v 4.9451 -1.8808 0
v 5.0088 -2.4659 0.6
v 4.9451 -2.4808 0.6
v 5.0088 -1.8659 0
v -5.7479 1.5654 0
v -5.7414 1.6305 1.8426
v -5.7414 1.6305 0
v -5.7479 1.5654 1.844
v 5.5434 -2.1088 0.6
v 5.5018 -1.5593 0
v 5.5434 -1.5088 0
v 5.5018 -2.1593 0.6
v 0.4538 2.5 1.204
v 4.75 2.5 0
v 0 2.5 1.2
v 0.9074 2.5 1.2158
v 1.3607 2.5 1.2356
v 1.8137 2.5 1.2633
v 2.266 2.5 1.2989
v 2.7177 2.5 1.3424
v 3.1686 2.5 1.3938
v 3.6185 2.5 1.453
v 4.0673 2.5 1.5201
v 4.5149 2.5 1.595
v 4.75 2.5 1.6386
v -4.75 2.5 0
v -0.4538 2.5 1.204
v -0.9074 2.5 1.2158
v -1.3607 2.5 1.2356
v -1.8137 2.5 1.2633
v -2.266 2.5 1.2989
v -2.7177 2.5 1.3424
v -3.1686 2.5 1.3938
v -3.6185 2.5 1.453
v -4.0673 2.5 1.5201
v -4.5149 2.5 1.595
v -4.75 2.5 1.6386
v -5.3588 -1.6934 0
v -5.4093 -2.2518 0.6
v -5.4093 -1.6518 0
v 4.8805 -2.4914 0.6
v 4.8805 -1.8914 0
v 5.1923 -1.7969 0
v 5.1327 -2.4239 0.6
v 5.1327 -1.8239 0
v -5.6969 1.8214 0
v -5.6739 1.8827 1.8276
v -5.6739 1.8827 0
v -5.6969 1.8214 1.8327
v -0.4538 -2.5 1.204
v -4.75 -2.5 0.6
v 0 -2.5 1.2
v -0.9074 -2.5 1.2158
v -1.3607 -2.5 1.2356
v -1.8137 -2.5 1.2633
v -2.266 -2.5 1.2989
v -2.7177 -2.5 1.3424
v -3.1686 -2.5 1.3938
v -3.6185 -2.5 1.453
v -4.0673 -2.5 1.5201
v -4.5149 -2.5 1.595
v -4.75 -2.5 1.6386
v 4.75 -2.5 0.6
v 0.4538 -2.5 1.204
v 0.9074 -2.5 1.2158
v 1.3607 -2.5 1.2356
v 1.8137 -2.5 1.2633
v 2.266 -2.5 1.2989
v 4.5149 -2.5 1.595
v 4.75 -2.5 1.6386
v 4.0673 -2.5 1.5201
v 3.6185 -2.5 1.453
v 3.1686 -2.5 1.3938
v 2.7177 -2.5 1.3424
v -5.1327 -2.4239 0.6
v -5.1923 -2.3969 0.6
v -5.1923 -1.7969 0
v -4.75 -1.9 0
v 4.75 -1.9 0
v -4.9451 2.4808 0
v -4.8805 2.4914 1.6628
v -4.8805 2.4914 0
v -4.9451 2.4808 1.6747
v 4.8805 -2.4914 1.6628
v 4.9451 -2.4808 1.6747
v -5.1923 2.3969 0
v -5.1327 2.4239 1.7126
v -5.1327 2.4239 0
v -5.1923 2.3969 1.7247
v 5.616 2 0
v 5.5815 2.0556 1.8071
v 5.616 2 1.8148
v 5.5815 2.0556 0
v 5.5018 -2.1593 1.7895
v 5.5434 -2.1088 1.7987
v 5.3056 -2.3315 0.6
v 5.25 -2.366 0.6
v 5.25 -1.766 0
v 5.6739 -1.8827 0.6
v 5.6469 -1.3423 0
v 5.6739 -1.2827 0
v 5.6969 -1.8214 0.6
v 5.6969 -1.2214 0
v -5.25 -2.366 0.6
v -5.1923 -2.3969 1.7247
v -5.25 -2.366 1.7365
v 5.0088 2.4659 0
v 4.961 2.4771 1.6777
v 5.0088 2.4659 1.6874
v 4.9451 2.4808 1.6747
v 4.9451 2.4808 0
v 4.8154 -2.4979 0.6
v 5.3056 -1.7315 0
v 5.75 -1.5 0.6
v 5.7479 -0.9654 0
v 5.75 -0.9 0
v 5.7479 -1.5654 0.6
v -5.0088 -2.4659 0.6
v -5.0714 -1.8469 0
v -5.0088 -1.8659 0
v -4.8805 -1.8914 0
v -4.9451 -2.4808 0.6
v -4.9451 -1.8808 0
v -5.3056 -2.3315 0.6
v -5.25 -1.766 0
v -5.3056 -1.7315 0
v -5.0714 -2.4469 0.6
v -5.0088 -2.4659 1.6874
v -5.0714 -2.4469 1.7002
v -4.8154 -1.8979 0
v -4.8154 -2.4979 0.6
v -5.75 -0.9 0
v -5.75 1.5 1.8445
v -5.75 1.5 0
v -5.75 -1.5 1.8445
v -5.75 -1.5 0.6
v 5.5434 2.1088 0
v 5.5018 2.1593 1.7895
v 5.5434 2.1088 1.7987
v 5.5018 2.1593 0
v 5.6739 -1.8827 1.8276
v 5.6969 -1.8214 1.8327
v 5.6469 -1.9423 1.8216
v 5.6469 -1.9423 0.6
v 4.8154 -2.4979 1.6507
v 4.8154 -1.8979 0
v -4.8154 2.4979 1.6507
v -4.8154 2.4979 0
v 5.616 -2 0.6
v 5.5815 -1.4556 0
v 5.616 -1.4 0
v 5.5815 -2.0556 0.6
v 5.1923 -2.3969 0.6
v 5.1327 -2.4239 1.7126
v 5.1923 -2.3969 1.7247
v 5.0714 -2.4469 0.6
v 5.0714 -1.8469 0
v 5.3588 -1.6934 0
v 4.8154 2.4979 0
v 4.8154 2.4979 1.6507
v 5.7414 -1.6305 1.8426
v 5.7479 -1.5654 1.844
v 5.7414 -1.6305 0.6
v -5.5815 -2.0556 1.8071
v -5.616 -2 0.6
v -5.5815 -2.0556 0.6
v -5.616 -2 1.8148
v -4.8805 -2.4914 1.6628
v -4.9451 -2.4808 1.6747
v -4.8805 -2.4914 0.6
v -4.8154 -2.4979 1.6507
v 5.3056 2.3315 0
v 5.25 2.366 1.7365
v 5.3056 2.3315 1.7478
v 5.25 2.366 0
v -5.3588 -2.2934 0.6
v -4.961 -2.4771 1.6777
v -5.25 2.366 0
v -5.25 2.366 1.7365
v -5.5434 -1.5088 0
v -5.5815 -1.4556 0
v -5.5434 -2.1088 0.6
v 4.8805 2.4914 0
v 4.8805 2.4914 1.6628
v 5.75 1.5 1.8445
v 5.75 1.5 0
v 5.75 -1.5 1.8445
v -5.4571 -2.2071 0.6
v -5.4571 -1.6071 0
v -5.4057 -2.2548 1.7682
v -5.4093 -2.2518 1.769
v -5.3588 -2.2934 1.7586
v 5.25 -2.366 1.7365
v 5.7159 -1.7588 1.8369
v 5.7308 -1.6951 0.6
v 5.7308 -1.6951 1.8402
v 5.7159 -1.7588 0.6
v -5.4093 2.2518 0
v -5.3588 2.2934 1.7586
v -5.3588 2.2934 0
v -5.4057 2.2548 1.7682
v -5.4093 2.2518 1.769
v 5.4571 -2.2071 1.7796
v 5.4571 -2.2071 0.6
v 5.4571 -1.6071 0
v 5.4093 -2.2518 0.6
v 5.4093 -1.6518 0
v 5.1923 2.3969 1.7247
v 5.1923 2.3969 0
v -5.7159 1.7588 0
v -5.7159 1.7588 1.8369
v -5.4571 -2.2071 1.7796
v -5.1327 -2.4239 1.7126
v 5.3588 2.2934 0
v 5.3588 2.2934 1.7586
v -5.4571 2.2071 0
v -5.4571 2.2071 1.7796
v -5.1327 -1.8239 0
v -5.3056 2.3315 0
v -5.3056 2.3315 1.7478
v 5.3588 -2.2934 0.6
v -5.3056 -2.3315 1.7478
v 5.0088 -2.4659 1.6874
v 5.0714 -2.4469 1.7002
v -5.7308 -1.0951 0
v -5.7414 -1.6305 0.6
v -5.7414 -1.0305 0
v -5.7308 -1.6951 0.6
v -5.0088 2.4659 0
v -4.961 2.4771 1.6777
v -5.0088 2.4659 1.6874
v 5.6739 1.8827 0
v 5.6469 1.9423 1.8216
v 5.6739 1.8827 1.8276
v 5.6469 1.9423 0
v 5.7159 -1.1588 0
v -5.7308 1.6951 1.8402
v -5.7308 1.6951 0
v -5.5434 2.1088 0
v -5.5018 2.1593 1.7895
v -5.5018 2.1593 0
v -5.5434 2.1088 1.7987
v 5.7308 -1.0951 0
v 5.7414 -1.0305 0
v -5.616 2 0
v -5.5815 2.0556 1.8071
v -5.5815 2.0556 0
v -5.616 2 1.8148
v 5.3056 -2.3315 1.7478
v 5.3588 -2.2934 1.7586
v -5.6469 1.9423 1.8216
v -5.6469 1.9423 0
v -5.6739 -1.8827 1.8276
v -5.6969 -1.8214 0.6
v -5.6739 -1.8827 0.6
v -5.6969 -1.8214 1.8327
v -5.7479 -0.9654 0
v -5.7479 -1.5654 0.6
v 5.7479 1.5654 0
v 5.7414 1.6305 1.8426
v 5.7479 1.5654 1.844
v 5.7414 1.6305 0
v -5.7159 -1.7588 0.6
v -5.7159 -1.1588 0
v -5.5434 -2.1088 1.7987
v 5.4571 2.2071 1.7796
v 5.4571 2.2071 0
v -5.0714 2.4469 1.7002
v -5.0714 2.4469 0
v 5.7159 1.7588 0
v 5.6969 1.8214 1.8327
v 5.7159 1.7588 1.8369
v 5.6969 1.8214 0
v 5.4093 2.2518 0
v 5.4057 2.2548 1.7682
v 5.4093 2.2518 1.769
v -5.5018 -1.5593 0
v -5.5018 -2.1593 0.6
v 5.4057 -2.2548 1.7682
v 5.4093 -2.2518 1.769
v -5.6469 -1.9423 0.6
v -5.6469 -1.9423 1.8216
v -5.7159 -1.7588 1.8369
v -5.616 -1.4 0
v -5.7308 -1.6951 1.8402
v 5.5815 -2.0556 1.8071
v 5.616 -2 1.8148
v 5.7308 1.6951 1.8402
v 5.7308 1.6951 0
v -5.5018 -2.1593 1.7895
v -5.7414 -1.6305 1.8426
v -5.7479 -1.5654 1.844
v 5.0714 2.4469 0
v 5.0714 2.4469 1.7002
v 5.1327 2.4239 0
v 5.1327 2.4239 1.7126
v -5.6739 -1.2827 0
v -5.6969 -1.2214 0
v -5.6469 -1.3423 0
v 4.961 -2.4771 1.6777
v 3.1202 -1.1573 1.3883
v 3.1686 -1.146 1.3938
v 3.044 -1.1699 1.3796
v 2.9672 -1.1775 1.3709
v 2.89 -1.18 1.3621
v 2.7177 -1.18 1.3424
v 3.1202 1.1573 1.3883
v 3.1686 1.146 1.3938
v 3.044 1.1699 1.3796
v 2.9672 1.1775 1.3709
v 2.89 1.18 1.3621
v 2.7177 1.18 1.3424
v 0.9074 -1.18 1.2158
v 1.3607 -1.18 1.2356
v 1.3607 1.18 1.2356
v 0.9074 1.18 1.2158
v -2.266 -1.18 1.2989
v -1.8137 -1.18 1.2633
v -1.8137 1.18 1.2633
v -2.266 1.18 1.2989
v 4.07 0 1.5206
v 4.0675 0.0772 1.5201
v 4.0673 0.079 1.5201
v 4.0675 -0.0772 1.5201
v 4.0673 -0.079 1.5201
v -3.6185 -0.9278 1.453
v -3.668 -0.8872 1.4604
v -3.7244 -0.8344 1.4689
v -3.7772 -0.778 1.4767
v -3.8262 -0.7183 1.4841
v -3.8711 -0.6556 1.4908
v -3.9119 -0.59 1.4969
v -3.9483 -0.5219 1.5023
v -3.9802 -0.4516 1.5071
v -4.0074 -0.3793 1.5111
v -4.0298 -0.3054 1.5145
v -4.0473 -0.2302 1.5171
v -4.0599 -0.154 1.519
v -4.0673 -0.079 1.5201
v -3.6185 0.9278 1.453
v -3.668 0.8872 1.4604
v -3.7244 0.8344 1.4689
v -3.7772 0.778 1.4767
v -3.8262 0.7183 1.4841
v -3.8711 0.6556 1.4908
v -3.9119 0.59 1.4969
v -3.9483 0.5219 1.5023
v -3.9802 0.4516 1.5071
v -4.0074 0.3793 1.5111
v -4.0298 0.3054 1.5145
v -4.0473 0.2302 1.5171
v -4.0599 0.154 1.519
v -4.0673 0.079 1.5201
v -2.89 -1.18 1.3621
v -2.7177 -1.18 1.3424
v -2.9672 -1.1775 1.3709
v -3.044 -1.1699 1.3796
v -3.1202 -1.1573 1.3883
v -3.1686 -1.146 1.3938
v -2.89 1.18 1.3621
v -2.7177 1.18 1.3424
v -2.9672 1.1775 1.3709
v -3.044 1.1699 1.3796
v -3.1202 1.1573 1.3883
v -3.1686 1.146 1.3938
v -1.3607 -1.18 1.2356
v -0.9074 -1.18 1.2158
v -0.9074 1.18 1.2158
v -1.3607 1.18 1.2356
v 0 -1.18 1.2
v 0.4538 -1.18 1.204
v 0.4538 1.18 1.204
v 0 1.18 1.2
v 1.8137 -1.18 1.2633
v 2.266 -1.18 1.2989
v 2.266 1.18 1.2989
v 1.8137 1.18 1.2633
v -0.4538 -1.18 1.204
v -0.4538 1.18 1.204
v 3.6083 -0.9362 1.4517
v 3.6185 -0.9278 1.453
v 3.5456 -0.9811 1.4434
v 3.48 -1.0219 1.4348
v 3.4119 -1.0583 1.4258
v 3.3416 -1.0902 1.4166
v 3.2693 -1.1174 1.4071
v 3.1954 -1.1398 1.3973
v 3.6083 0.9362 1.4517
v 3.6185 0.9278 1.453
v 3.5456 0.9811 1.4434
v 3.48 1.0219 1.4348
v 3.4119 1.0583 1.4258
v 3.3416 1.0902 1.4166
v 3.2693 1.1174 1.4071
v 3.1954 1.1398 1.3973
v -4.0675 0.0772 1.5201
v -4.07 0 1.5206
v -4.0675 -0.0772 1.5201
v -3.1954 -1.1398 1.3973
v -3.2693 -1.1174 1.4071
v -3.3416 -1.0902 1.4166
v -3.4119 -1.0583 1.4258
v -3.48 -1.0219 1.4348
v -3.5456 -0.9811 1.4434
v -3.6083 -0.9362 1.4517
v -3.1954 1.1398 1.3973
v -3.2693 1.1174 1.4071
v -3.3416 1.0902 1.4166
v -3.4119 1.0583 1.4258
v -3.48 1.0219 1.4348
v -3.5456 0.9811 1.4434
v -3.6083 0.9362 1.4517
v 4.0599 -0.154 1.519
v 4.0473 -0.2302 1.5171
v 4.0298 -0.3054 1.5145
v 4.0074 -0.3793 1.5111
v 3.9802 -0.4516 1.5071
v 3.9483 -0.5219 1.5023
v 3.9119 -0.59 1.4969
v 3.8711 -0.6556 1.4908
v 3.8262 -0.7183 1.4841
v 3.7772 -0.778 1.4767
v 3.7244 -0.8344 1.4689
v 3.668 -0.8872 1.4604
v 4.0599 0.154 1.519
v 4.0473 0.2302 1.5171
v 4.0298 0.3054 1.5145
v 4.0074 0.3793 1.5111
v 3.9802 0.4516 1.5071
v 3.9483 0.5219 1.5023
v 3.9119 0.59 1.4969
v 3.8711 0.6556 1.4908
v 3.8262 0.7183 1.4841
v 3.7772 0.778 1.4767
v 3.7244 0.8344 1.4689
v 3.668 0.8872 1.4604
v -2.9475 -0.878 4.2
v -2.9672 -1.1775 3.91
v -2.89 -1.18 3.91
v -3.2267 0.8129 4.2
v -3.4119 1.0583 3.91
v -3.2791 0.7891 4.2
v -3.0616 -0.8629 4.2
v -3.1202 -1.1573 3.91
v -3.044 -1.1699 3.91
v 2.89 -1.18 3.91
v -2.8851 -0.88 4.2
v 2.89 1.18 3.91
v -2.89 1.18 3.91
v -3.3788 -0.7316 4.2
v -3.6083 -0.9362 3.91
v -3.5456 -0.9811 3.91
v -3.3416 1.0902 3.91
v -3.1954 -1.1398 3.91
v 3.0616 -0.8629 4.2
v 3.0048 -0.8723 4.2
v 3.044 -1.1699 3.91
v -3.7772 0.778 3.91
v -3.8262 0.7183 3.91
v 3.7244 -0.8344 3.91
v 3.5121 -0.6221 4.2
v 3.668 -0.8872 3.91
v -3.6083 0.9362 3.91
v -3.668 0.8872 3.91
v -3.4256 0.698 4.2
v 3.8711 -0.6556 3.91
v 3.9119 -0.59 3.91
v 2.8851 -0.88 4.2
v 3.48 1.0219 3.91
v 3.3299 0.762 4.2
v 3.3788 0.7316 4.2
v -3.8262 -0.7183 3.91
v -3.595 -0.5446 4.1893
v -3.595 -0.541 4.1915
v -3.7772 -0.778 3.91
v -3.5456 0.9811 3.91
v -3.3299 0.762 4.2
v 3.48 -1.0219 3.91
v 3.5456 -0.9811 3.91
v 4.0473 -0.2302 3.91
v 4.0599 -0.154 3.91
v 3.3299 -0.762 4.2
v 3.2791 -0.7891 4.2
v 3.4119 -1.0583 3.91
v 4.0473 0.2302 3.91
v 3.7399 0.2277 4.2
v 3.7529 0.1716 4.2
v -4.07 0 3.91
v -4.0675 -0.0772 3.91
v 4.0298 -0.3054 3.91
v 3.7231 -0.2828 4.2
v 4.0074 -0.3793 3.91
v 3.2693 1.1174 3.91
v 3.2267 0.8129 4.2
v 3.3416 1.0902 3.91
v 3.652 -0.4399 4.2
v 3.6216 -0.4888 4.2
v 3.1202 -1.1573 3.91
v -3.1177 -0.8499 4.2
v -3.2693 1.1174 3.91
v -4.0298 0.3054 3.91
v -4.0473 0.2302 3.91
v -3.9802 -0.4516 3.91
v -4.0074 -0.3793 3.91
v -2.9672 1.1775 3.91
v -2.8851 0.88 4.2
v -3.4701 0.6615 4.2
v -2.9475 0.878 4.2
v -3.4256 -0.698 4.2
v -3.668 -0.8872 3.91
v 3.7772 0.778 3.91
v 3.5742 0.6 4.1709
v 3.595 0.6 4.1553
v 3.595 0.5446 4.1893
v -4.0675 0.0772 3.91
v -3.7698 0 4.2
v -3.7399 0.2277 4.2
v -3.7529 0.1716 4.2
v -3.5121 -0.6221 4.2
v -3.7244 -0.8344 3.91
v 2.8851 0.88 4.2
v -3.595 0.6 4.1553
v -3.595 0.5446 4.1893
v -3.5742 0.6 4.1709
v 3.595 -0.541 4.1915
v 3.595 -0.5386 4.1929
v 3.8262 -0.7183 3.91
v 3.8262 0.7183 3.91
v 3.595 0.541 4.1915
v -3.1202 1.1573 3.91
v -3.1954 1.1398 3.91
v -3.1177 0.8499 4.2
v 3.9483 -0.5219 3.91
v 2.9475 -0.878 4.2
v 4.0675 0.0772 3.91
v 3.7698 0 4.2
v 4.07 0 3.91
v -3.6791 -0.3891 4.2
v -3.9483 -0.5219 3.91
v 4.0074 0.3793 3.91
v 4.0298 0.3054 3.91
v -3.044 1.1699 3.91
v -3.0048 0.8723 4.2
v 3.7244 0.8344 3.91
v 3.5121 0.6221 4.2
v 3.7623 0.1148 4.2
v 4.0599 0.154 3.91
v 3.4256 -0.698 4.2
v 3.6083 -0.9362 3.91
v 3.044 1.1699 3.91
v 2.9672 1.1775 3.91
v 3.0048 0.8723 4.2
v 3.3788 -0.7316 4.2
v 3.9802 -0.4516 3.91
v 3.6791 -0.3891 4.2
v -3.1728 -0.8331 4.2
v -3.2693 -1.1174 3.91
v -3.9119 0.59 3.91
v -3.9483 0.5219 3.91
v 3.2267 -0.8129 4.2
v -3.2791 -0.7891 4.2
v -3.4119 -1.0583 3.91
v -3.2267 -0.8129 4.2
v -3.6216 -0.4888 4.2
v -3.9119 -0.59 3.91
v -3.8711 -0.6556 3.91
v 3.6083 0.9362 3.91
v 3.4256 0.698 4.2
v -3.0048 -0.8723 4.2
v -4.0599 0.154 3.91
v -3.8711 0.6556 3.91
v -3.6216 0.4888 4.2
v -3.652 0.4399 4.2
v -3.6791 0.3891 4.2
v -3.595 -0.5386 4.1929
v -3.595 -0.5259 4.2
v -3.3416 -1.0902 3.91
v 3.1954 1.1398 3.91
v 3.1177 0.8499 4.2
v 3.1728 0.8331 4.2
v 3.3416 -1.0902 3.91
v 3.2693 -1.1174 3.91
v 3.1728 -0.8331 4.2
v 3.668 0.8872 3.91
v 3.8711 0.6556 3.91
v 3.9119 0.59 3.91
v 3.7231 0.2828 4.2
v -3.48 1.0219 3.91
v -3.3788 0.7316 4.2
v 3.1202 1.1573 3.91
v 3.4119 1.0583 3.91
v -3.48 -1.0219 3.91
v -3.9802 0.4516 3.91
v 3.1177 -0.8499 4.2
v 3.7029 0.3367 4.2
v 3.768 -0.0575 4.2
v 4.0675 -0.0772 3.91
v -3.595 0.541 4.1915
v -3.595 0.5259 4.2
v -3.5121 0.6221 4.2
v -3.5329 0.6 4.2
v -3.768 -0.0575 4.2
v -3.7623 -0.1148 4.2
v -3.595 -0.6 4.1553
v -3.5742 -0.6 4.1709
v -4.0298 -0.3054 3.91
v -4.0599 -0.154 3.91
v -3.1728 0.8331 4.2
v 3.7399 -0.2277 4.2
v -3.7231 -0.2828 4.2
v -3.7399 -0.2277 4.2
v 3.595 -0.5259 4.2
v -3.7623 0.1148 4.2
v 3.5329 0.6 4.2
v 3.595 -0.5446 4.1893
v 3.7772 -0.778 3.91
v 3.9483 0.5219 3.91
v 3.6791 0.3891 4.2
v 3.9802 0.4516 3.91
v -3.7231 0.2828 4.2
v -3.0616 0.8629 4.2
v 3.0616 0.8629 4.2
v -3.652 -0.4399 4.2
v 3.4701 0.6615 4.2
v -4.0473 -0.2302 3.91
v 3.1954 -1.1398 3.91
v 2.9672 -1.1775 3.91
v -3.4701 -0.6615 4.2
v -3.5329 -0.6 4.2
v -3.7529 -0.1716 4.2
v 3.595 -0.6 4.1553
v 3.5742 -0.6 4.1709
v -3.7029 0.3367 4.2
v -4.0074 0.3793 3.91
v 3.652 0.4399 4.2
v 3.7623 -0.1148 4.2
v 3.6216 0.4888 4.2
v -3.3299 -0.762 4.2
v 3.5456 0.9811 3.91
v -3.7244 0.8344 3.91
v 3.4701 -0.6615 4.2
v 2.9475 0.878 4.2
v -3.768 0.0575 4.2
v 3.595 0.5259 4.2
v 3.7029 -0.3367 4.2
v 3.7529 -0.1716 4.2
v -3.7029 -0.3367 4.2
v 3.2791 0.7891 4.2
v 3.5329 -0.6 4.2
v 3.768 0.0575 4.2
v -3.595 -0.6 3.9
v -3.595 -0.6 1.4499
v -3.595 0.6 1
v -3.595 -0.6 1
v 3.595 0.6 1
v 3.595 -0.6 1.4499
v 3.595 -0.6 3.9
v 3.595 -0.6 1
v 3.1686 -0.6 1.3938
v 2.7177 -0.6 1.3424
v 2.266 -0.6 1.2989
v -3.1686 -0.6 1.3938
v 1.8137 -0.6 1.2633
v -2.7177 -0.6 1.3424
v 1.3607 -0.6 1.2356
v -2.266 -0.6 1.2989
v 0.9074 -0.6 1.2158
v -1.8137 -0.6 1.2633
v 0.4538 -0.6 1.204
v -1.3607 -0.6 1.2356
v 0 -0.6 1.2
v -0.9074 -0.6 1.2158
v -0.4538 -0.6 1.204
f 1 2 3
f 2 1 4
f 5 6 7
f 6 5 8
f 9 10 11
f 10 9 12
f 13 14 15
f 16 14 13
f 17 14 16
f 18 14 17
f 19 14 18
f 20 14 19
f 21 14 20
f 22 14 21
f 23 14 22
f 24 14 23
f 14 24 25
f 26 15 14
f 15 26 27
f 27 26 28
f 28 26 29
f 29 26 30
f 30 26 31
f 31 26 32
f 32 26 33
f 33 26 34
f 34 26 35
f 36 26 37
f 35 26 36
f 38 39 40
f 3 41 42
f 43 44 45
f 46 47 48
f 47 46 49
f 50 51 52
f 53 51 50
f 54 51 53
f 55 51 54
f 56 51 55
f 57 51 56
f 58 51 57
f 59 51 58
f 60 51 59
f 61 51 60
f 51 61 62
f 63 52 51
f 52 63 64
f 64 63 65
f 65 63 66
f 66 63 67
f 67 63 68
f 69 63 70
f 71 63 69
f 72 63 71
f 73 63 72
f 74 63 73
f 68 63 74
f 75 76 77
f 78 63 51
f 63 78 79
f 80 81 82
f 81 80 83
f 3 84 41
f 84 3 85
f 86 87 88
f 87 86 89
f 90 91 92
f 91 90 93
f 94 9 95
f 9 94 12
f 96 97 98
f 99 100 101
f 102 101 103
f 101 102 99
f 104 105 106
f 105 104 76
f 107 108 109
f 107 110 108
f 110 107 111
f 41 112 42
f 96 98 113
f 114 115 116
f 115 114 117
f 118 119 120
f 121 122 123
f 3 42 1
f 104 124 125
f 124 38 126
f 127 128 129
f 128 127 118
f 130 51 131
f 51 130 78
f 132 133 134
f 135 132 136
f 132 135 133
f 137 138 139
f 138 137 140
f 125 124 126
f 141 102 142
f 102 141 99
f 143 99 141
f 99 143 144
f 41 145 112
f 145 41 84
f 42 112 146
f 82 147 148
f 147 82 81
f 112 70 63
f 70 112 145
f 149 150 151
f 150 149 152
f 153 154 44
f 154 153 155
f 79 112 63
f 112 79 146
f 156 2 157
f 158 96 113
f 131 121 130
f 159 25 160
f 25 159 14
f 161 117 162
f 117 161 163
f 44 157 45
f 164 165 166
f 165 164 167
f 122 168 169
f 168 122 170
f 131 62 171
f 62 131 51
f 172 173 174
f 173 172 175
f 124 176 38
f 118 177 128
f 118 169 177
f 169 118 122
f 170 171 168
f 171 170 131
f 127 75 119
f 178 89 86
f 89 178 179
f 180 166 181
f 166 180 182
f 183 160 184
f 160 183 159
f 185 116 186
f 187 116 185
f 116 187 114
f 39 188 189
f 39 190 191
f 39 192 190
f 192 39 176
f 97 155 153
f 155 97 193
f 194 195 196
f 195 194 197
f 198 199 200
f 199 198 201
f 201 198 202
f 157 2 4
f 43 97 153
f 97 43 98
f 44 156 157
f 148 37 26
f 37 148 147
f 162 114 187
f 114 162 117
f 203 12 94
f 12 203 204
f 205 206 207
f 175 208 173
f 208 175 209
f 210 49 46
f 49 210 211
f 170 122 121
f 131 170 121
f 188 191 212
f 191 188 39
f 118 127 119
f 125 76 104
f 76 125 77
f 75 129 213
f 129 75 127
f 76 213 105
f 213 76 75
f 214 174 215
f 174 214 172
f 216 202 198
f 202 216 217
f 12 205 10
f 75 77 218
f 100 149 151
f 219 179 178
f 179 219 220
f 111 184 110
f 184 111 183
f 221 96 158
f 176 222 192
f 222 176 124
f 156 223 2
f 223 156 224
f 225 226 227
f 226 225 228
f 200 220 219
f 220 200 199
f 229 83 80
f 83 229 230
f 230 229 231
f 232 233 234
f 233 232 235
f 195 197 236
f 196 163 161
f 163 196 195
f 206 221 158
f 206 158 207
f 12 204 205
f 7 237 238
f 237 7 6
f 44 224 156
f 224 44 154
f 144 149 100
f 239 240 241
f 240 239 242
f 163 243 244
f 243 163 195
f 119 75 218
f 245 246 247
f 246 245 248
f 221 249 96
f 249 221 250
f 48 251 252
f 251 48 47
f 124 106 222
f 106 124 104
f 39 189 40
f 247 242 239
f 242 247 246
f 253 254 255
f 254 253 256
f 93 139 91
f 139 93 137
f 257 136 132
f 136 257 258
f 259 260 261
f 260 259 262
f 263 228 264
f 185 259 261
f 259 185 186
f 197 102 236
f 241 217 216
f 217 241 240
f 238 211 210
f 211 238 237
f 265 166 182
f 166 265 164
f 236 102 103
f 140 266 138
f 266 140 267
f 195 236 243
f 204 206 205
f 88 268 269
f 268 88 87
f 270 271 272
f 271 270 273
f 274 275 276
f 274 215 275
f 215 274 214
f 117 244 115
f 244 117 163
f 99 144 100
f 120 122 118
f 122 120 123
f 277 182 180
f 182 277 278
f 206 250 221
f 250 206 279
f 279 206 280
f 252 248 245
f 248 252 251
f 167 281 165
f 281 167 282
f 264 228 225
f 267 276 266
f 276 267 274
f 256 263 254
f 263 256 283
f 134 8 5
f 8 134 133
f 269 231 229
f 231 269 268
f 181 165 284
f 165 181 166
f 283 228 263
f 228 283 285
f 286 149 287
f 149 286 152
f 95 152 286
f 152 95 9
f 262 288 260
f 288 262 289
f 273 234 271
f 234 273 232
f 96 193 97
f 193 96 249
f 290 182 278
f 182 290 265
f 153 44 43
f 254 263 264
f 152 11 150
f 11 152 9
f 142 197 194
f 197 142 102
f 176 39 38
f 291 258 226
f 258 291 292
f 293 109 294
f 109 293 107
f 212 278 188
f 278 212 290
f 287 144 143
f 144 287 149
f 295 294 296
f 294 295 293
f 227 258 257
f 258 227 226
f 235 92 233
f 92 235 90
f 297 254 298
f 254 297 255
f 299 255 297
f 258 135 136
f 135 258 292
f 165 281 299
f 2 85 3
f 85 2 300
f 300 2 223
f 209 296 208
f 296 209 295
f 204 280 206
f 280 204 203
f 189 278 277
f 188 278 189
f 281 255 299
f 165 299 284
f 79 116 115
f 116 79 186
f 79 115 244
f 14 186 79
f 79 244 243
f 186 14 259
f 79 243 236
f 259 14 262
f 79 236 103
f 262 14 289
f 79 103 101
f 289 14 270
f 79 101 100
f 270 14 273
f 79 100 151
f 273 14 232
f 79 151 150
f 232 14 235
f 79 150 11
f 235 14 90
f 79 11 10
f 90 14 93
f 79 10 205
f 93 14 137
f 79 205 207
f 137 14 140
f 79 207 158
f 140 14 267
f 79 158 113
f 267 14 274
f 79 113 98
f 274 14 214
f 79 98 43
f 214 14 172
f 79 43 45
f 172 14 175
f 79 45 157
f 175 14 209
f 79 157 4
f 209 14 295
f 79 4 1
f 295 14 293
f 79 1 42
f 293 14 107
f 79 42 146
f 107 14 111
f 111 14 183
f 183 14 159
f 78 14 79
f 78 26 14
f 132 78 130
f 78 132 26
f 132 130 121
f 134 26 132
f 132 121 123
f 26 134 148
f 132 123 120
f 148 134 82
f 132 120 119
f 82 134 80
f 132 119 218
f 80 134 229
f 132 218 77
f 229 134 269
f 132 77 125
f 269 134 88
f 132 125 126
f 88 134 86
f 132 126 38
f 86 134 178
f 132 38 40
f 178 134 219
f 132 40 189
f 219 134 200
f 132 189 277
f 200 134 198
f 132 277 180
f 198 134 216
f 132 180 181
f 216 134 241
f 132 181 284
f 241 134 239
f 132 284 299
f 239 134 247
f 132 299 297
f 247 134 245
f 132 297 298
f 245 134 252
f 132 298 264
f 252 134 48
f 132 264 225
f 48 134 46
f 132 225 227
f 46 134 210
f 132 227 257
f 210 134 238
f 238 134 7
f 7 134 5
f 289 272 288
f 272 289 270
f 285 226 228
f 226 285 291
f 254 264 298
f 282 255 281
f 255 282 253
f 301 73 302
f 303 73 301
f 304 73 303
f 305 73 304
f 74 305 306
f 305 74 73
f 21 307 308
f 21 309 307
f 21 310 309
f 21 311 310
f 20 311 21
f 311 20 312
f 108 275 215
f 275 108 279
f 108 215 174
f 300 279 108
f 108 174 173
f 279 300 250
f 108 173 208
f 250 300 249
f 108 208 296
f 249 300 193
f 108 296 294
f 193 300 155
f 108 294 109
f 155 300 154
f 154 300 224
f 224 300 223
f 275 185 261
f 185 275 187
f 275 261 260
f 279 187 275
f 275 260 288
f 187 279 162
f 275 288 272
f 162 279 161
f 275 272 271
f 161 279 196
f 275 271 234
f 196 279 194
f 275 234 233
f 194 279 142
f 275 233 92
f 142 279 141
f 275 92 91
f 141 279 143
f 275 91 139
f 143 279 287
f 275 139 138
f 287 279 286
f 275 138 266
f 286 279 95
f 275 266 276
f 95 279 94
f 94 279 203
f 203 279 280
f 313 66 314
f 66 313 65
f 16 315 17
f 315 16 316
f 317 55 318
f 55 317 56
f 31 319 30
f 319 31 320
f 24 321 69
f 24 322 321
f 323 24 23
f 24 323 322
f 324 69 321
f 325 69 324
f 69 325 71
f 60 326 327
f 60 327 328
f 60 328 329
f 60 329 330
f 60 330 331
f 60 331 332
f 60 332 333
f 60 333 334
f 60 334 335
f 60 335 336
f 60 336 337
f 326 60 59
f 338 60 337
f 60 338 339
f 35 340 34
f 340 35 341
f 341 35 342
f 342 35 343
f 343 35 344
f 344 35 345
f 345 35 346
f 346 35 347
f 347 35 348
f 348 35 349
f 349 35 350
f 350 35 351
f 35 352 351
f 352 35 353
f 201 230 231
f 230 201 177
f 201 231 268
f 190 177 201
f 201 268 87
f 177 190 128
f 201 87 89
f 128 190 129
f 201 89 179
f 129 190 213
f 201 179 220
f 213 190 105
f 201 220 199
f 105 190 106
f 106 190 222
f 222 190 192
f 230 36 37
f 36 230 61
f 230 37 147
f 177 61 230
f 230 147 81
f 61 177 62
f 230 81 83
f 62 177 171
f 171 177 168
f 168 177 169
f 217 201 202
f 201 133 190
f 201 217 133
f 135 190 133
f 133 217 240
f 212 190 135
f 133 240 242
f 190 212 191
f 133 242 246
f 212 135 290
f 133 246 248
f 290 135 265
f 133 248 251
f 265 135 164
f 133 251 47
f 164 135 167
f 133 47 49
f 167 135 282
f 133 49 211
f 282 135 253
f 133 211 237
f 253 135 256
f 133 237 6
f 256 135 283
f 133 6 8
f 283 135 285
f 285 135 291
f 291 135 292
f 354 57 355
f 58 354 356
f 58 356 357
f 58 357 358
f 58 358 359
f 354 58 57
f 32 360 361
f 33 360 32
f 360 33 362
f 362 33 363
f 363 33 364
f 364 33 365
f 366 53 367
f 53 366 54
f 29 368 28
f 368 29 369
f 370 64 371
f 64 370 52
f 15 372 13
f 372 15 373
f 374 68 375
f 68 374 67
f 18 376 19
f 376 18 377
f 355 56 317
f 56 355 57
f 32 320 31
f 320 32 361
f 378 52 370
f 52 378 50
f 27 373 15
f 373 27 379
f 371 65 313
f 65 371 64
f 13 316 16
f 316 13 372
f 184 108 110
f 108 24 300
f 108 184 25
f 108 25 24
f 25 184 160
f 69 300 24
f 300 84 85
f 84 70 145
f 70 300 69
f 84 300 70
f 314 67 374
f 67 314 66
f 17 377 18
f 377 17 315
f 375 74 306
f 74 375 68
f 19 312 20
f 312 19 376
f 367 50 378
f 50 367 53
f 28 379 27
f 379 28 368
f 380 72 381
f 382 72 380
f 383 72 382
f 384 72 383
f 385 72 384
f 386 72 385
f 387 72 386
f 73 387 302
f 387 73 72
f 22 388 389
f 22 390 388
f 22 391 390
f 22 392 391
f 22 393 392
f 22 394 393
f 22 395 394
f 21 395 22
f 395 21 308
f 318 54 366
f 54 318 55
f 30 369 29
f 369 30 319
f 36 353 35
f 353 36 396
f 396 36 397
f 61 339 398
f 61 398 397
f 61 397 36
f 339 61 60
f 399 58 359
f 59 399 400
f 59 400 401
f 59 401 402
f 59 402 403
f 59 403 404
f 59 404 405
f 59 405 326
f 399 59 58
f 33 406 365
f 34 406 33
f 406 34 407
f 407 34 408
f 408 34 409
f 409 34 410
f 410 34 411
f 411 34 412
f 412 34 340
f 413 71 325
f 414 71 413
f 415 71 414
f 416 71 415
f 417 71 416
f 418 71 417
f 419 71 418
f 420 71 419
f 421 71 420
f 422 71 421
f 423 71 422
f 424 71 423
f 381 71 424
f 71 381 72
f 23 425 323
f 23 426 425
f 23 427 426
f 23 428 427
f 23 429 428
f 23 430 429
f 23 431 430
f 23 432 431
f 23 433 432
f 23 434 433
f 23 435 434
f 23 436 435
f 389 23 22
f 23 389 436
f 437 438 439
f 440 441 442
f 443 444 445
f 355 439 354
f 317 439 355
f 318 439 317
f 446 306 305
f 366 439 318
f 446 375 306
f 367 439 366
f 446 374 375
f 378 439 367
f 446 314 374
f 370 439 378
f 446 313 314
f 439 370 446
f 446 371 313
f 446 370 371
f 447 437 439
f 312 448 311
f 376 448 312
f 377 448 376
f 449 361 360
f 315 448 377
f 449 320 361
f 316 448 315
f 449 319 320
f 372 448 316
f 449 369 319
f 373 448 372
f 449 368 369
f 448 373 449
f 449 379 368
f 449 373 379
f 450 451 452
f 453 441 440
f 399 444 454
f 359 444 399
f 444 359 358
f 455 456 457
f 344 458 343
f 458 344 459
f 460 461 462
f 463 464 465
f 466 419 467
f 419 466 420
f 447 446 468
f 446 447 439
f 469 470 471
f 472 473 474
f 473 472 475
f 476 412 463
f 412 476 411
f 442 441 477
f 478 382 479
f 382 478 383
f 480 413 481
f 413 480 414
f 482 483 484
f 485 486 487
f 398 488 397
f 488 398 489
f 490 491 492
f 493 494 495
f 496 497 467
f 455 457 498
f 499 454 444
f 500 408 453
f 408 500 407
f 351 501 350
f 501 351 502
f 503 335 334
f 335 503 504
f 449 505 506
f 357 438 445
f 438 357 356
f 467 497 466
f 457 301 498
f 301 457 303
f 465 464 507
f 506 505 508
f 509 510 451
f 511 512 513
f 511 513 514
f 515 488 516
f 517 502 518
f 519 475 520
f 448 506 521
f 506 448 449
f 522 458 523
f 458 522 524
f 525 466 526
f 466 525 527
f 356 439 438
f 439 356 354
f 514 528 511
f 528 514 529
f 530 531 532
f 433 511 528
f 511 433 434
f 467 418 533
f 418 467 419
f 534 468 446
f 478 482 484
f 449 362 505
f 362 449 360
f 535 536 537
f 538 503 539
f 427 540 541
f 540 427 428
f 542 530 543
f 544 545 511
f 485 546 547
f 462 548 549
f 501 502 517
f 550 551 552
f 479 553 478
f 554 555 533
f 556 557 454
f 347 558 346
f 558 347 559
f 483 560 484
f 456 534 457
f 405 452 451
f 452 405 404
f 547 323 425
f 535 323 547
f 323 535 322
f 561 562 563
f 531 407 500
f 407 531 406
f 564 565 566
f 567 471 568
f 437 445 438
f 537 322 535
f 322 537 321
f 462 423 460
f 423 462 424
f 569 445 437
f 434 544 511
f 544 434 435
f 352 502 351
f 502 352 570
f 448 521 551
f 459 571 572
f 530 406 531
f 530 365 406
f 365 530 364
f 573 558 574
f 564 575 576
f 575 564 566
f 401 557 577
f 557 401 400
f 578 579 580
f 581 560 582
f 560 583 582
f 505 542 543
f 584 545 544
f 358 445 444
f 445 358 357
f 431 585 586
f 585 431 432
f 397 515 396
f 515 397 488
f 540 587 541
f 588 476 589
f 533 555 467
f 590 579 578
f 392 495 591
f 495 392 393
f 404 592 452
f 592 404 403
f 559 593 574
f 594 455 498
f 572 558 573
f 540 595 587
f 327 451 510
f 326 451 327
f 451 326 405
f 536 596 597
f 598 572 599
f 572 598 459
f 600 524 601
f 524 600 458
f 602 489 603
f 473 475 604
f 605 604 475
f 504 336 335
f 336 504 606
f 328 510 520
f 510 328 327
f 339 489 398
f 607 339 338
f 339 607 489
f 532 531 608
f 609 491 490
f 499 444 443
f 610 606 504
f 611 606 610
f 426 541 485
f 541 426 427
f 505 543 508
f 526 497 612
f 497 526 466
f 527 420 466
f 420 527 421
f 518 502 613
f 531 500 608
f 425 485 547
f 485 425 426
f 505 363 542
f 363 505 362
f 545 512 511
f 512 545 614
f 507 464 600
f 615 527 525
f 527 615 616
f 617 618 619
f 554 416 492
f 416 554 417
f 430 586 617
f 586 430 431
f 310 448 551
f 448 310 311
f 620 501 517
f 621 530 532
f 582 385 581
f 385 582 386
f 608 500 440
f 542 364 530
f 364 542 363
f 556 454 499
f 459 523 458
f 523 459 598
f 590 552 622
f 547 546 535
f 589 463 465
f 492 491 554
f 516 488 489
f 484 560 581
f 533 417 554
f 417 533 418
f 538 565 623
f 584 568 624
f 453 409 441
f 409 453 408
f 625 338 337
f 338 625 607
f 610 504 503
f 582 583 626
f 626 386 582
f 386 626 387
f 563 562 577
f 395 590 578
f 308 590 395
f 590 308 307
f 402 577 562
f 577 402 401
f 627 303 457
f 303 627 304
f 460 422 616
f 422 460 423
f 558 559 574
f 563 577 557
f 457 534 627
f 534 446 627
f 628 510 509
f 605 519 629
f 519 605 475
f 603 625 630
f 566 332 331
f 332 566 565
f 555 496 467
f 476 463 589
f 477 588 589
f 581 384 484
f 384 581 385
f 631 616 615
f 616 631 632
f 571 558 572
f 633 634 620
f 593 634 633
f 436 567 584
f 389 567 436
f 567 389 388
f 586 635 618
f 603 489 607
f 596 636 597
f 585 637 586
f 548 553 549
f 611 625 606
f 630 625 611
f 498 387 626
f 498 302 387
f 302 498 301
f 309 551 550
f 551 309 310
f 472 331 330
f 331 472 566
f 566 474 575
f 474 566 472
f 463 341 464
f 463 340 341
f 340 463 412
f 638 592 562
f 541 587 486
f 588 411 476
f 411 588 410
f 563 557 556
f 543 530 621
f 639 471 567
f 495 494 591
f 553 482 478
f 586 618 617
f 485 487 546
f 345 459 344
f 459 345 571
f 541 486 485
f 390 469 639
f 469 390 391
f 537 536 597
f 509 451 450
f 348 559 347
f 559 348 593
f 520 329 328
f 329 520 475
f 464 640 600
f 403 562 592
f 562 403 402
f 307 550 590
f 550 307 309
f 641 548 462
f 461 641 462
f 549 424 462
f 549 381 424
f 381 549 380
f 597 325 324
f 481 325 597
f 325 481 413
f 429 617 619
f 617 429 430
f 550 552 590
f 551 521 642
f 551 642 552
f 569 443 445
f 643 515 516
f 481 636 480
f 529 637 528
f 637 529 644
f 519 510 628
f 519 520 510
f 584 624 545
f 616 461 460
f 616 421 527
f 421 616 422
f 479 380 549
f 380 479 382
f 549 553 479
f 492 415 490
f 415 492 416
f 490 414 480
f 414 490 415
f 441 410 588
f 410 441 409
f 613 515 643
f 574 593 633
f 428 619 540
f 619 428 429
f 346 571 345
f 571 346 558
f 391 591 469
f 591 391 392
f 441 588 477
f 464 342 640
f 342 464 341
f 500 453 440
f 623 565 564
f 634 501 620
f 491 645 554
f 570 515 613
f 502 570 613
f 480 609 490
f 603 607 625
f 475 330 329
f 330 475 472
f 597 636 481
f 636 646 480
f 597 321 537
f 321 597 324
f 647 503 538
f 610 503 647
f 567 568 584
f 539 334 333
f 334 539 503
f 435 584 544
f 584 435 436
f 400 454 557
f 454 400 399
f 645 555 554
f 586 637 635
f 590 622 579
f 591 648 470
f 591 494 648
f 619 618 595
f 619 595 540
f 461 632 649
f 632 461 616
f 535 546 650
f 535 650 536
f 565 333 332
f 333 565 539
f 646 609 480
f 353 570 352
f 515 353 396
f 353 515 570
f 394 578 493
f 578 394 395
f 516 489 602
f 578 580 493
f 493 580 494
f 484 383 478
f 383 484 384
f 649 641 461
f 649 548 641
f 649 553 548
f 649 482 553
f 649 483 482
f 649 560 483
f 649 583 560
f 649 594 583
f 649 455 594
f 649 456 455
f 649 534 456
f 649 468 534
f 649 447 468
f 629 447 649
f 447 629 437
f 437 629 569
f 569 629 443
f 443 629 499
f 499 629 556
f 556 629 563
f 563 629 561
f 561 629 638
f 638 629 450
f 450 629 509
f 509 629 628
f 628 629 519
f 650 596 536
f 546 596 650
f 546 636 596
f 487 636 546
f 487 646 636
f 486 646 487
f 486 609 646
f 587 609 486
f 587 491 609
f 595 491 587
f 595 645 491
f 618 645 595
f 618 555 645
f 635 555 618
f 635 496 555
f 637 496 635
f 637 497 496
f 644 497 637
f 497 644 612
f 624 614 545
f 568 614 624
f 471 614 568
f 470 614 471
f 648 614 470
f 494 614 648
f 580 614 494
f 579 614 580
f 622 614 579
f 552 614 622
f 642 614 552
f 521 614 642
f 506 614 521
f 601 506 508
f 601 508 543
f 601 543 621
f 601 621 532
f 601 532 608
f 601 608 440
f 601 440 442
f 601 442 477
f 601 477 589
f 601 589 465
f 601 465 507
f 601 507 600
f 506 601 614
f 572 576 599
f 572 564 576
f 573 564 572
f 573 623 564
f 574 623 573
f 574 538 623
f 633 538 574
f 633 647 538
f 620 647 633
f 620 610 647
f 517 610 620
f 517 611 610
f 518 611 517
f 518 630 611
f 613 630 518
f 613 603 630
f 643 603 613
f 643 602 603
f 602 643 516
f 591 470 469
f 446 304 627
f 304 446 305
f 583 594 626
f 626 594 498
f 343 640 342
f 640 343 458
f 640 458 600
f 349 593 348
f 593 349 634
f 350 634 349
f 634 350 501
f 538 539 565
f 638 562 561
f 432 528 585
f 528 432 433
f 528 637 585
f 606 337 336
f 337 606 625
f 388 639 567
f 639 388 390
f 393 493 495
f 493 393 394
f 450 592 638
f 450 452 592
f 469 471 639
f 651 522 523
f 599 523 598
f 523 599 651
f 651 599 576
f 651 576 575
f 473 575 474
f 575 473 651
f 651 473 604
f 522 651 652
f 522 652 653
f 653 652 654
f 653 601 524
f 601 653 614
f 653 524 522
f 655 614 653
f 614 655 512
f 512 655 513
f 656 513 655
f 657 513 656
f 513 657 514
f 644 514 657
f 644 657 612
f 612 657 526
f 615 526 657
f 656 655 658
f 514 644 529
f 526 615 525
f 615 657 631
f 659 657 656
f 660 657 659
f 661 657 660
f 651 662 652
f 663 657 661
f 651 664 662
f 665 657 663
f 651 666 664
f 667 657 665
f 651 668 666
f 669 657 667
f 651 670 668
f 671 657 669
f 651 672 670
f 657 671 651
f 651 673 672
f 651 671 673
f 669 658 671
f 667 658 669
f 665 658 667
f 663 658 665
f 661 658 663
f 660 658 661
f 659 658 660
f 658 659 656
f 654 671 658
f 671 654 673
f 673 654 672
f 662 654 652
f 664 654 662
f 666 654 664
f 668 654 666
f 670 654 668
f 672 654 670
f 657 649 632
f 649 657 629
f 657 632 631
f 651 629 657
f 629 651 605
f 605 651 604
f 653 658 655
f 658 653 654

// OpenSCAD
// =============================================================
//  M5Stack StopWatch  USB-C ポートのキャップ
//  - USB-C の差し込み口(レセプタクル)に挿す「栓」+ 本体側面の開口を覆う「ふた」
//  - 栓は真ん中の舌(タング)をよけるスリット付きの筒。USB-C 規格の寸法で作るので、
//    本体の簡易データの誤差に左右されにくい。差し込み口の左右のバネで保持される
//      USB-C 差し込み口の内寸 : 幅 8.34 / 高さ 2.56(両端は半円)
//      舌                   : 幅 6.69 / 厚さ 0.7(中央)
//  - 位置は公式構造データ StopWatch.stl から読み取り:6時の側面、本体背面から高さ Z 約 7.0〜10.25
//  - 推奨素材: TPU か PETG
//  - 印刷向き: このまま(ふたの外側の平らな面がベッド、栓が上向き)。サポート不要
//    print_orient = false にすると本体に付けた位置で表示(確認用)
// =============================================================

print_orient = true;

body_r      = 26.0;
port_z      = 8.6;      // 差し込み口の中心の高さ(本体背面から)

// USB-C 差し込み口(規格寸法)
rcpt_w      = 8.34;
rcpt_h      = 2.56;
tongue_w    = 6.69;
tongue_t    = 0.70;

// 栓
plug_clear  = 0.10;     // 栓の外周を差し込み口より小さくする量(緩ければ 0.05、入らなければ 0.15)
slot_clear  = 0.25;     // 舌をよけるスリットの余裕(片側)
plug_len    = 3.0;      // 本体の表面から奥へ入る長さ
plug_lead   = 0.3;      // 先端の面取り(入れやすく)

// ふた(開口を覆う板。外側は平ら、内側は本体の丸みに沿う)
cap_w       = 11.5;     // 横幅(開口 約 9.3 + 余裕)
cap_h       = 5.0;      // 高さ(開口 約 3.3 + 余裕)
cap_t       = 1.2;      // 中央の厚み(本体表面から外側の面まで)
cap_r       = 1.0;      // 角の丸み
nail_notch  = 0.6;      // 下の縁の面取り(爪をかけて外す用)

$fn = 96;

// ---- ローカル座標:u = 横(3時方向)、v = 高さ(本体背面から)、w = 外向き(6時方向の半径) ----
module stadium(w, h) { hull() for (s = [-1,1]) translate([s*(w/2 - h/2), 0]) circle(d = h); }

module plug_profile(off = 0) {
    difference() {
        stadium(rcpt_w - 2*plug_clear - 2*off, rcpt_h - 2*plug_clear - 2*off);
        square([tongue_w + 2*slot_clear, tongue_t + 2*slot_clear], center = true);
    }
}

module cap_local() {
    w0 = body_r - plug_len;                 // 栓の先端
    // 栓(先端は面取り)
    hull_free_lead();
    extrude_w(w0 + plug_lead, body_r + 0.2) translate([0, port_z]) plug_profile();
    // ふた
    difference() {
        hull() {
            extrude_w(body_r - 2, body_r + cap_t - nail_notch) translate([0, port_z]) rounded_rect(cap_w, cap_h, cap_r);
            extrude_w(body_r + cap_t - 0.01, body_r + cap_t)
                translate([0, port_z + nail_notch/2]) rounded_rect(cap_w, cap_h - nail_notch, cap_r);
        }
        // 内側を本体の丸みに沿ってくり抜く(本体の円筒 r < body_r)
        translate([0, 0, -50]) cylinder(r = body_r, h = 100, $fn = 360);   // ローカルの z = v が円筒の軸
    }
}
module hull_free_lead() {
    w0 = body_r - plug_len;
    hull() {
        extrude_w(w0, w0 + 0.01) translate([0, port_z]) offset(delta = -plug_lead) stadium(rcpt_w - 2*plug_clear, rcpt_h - 2*plug_clear);
        extrude_w(w0 + plug_lead - 0.01, w0 + plug_lead) translate([0, port_z]) stadium(rcpt_w - 2*plug_clear, rcpt_h - 2*plug_clear);
    }
}
module rounded_rect(w, h, r) { offset(r = r) square([w - 2*r, h - 2*r], center = true); }
// 2D(u, v) を w 方向に [a, b] の範囲で押し出す(ローカル座標:x = u, y = w, z = v)
module extrude_w(a, b) {
    multmatrix([[1,0,0,0],[0,0,1,0],[0,1,0,0]])   // (x2, y2, e) → (u = x2, w = e, v = y2)
        translate([0, 0, a]) linear_extrude(b - a) children();
}

module cap_body() {
    difference() {
        cap_local();
        // 先端の面取り部分にもスリットを通す
        extrude_w(body_r - plug_len - 1, body_r + 0.2) translate([0, port_z])
            square([tongue_w + 2*slot_clear, tongue_t + 2*slot_clear], center = true);
    }
}

// ローカル(u, w, v) → グローバル(X = u, Y = -w, Z = v)
module to_global() { multmatrix([[1,0,0,0],[0,-1,0,0],[0,0,1,0]]) children(); }

if (print_orient) {
    // ふたの外側の面(w = body_r + cap_t)をベッドに、栓を上向きに
    multmatrix([[1,0,0,0],[0,0,1,-port_z],[0,-1,0,body_r + cap_t]]) cap_body();
} else {
    to_global() cap_body();
    %cylinder(r = body_r, h = 15.5);
}
